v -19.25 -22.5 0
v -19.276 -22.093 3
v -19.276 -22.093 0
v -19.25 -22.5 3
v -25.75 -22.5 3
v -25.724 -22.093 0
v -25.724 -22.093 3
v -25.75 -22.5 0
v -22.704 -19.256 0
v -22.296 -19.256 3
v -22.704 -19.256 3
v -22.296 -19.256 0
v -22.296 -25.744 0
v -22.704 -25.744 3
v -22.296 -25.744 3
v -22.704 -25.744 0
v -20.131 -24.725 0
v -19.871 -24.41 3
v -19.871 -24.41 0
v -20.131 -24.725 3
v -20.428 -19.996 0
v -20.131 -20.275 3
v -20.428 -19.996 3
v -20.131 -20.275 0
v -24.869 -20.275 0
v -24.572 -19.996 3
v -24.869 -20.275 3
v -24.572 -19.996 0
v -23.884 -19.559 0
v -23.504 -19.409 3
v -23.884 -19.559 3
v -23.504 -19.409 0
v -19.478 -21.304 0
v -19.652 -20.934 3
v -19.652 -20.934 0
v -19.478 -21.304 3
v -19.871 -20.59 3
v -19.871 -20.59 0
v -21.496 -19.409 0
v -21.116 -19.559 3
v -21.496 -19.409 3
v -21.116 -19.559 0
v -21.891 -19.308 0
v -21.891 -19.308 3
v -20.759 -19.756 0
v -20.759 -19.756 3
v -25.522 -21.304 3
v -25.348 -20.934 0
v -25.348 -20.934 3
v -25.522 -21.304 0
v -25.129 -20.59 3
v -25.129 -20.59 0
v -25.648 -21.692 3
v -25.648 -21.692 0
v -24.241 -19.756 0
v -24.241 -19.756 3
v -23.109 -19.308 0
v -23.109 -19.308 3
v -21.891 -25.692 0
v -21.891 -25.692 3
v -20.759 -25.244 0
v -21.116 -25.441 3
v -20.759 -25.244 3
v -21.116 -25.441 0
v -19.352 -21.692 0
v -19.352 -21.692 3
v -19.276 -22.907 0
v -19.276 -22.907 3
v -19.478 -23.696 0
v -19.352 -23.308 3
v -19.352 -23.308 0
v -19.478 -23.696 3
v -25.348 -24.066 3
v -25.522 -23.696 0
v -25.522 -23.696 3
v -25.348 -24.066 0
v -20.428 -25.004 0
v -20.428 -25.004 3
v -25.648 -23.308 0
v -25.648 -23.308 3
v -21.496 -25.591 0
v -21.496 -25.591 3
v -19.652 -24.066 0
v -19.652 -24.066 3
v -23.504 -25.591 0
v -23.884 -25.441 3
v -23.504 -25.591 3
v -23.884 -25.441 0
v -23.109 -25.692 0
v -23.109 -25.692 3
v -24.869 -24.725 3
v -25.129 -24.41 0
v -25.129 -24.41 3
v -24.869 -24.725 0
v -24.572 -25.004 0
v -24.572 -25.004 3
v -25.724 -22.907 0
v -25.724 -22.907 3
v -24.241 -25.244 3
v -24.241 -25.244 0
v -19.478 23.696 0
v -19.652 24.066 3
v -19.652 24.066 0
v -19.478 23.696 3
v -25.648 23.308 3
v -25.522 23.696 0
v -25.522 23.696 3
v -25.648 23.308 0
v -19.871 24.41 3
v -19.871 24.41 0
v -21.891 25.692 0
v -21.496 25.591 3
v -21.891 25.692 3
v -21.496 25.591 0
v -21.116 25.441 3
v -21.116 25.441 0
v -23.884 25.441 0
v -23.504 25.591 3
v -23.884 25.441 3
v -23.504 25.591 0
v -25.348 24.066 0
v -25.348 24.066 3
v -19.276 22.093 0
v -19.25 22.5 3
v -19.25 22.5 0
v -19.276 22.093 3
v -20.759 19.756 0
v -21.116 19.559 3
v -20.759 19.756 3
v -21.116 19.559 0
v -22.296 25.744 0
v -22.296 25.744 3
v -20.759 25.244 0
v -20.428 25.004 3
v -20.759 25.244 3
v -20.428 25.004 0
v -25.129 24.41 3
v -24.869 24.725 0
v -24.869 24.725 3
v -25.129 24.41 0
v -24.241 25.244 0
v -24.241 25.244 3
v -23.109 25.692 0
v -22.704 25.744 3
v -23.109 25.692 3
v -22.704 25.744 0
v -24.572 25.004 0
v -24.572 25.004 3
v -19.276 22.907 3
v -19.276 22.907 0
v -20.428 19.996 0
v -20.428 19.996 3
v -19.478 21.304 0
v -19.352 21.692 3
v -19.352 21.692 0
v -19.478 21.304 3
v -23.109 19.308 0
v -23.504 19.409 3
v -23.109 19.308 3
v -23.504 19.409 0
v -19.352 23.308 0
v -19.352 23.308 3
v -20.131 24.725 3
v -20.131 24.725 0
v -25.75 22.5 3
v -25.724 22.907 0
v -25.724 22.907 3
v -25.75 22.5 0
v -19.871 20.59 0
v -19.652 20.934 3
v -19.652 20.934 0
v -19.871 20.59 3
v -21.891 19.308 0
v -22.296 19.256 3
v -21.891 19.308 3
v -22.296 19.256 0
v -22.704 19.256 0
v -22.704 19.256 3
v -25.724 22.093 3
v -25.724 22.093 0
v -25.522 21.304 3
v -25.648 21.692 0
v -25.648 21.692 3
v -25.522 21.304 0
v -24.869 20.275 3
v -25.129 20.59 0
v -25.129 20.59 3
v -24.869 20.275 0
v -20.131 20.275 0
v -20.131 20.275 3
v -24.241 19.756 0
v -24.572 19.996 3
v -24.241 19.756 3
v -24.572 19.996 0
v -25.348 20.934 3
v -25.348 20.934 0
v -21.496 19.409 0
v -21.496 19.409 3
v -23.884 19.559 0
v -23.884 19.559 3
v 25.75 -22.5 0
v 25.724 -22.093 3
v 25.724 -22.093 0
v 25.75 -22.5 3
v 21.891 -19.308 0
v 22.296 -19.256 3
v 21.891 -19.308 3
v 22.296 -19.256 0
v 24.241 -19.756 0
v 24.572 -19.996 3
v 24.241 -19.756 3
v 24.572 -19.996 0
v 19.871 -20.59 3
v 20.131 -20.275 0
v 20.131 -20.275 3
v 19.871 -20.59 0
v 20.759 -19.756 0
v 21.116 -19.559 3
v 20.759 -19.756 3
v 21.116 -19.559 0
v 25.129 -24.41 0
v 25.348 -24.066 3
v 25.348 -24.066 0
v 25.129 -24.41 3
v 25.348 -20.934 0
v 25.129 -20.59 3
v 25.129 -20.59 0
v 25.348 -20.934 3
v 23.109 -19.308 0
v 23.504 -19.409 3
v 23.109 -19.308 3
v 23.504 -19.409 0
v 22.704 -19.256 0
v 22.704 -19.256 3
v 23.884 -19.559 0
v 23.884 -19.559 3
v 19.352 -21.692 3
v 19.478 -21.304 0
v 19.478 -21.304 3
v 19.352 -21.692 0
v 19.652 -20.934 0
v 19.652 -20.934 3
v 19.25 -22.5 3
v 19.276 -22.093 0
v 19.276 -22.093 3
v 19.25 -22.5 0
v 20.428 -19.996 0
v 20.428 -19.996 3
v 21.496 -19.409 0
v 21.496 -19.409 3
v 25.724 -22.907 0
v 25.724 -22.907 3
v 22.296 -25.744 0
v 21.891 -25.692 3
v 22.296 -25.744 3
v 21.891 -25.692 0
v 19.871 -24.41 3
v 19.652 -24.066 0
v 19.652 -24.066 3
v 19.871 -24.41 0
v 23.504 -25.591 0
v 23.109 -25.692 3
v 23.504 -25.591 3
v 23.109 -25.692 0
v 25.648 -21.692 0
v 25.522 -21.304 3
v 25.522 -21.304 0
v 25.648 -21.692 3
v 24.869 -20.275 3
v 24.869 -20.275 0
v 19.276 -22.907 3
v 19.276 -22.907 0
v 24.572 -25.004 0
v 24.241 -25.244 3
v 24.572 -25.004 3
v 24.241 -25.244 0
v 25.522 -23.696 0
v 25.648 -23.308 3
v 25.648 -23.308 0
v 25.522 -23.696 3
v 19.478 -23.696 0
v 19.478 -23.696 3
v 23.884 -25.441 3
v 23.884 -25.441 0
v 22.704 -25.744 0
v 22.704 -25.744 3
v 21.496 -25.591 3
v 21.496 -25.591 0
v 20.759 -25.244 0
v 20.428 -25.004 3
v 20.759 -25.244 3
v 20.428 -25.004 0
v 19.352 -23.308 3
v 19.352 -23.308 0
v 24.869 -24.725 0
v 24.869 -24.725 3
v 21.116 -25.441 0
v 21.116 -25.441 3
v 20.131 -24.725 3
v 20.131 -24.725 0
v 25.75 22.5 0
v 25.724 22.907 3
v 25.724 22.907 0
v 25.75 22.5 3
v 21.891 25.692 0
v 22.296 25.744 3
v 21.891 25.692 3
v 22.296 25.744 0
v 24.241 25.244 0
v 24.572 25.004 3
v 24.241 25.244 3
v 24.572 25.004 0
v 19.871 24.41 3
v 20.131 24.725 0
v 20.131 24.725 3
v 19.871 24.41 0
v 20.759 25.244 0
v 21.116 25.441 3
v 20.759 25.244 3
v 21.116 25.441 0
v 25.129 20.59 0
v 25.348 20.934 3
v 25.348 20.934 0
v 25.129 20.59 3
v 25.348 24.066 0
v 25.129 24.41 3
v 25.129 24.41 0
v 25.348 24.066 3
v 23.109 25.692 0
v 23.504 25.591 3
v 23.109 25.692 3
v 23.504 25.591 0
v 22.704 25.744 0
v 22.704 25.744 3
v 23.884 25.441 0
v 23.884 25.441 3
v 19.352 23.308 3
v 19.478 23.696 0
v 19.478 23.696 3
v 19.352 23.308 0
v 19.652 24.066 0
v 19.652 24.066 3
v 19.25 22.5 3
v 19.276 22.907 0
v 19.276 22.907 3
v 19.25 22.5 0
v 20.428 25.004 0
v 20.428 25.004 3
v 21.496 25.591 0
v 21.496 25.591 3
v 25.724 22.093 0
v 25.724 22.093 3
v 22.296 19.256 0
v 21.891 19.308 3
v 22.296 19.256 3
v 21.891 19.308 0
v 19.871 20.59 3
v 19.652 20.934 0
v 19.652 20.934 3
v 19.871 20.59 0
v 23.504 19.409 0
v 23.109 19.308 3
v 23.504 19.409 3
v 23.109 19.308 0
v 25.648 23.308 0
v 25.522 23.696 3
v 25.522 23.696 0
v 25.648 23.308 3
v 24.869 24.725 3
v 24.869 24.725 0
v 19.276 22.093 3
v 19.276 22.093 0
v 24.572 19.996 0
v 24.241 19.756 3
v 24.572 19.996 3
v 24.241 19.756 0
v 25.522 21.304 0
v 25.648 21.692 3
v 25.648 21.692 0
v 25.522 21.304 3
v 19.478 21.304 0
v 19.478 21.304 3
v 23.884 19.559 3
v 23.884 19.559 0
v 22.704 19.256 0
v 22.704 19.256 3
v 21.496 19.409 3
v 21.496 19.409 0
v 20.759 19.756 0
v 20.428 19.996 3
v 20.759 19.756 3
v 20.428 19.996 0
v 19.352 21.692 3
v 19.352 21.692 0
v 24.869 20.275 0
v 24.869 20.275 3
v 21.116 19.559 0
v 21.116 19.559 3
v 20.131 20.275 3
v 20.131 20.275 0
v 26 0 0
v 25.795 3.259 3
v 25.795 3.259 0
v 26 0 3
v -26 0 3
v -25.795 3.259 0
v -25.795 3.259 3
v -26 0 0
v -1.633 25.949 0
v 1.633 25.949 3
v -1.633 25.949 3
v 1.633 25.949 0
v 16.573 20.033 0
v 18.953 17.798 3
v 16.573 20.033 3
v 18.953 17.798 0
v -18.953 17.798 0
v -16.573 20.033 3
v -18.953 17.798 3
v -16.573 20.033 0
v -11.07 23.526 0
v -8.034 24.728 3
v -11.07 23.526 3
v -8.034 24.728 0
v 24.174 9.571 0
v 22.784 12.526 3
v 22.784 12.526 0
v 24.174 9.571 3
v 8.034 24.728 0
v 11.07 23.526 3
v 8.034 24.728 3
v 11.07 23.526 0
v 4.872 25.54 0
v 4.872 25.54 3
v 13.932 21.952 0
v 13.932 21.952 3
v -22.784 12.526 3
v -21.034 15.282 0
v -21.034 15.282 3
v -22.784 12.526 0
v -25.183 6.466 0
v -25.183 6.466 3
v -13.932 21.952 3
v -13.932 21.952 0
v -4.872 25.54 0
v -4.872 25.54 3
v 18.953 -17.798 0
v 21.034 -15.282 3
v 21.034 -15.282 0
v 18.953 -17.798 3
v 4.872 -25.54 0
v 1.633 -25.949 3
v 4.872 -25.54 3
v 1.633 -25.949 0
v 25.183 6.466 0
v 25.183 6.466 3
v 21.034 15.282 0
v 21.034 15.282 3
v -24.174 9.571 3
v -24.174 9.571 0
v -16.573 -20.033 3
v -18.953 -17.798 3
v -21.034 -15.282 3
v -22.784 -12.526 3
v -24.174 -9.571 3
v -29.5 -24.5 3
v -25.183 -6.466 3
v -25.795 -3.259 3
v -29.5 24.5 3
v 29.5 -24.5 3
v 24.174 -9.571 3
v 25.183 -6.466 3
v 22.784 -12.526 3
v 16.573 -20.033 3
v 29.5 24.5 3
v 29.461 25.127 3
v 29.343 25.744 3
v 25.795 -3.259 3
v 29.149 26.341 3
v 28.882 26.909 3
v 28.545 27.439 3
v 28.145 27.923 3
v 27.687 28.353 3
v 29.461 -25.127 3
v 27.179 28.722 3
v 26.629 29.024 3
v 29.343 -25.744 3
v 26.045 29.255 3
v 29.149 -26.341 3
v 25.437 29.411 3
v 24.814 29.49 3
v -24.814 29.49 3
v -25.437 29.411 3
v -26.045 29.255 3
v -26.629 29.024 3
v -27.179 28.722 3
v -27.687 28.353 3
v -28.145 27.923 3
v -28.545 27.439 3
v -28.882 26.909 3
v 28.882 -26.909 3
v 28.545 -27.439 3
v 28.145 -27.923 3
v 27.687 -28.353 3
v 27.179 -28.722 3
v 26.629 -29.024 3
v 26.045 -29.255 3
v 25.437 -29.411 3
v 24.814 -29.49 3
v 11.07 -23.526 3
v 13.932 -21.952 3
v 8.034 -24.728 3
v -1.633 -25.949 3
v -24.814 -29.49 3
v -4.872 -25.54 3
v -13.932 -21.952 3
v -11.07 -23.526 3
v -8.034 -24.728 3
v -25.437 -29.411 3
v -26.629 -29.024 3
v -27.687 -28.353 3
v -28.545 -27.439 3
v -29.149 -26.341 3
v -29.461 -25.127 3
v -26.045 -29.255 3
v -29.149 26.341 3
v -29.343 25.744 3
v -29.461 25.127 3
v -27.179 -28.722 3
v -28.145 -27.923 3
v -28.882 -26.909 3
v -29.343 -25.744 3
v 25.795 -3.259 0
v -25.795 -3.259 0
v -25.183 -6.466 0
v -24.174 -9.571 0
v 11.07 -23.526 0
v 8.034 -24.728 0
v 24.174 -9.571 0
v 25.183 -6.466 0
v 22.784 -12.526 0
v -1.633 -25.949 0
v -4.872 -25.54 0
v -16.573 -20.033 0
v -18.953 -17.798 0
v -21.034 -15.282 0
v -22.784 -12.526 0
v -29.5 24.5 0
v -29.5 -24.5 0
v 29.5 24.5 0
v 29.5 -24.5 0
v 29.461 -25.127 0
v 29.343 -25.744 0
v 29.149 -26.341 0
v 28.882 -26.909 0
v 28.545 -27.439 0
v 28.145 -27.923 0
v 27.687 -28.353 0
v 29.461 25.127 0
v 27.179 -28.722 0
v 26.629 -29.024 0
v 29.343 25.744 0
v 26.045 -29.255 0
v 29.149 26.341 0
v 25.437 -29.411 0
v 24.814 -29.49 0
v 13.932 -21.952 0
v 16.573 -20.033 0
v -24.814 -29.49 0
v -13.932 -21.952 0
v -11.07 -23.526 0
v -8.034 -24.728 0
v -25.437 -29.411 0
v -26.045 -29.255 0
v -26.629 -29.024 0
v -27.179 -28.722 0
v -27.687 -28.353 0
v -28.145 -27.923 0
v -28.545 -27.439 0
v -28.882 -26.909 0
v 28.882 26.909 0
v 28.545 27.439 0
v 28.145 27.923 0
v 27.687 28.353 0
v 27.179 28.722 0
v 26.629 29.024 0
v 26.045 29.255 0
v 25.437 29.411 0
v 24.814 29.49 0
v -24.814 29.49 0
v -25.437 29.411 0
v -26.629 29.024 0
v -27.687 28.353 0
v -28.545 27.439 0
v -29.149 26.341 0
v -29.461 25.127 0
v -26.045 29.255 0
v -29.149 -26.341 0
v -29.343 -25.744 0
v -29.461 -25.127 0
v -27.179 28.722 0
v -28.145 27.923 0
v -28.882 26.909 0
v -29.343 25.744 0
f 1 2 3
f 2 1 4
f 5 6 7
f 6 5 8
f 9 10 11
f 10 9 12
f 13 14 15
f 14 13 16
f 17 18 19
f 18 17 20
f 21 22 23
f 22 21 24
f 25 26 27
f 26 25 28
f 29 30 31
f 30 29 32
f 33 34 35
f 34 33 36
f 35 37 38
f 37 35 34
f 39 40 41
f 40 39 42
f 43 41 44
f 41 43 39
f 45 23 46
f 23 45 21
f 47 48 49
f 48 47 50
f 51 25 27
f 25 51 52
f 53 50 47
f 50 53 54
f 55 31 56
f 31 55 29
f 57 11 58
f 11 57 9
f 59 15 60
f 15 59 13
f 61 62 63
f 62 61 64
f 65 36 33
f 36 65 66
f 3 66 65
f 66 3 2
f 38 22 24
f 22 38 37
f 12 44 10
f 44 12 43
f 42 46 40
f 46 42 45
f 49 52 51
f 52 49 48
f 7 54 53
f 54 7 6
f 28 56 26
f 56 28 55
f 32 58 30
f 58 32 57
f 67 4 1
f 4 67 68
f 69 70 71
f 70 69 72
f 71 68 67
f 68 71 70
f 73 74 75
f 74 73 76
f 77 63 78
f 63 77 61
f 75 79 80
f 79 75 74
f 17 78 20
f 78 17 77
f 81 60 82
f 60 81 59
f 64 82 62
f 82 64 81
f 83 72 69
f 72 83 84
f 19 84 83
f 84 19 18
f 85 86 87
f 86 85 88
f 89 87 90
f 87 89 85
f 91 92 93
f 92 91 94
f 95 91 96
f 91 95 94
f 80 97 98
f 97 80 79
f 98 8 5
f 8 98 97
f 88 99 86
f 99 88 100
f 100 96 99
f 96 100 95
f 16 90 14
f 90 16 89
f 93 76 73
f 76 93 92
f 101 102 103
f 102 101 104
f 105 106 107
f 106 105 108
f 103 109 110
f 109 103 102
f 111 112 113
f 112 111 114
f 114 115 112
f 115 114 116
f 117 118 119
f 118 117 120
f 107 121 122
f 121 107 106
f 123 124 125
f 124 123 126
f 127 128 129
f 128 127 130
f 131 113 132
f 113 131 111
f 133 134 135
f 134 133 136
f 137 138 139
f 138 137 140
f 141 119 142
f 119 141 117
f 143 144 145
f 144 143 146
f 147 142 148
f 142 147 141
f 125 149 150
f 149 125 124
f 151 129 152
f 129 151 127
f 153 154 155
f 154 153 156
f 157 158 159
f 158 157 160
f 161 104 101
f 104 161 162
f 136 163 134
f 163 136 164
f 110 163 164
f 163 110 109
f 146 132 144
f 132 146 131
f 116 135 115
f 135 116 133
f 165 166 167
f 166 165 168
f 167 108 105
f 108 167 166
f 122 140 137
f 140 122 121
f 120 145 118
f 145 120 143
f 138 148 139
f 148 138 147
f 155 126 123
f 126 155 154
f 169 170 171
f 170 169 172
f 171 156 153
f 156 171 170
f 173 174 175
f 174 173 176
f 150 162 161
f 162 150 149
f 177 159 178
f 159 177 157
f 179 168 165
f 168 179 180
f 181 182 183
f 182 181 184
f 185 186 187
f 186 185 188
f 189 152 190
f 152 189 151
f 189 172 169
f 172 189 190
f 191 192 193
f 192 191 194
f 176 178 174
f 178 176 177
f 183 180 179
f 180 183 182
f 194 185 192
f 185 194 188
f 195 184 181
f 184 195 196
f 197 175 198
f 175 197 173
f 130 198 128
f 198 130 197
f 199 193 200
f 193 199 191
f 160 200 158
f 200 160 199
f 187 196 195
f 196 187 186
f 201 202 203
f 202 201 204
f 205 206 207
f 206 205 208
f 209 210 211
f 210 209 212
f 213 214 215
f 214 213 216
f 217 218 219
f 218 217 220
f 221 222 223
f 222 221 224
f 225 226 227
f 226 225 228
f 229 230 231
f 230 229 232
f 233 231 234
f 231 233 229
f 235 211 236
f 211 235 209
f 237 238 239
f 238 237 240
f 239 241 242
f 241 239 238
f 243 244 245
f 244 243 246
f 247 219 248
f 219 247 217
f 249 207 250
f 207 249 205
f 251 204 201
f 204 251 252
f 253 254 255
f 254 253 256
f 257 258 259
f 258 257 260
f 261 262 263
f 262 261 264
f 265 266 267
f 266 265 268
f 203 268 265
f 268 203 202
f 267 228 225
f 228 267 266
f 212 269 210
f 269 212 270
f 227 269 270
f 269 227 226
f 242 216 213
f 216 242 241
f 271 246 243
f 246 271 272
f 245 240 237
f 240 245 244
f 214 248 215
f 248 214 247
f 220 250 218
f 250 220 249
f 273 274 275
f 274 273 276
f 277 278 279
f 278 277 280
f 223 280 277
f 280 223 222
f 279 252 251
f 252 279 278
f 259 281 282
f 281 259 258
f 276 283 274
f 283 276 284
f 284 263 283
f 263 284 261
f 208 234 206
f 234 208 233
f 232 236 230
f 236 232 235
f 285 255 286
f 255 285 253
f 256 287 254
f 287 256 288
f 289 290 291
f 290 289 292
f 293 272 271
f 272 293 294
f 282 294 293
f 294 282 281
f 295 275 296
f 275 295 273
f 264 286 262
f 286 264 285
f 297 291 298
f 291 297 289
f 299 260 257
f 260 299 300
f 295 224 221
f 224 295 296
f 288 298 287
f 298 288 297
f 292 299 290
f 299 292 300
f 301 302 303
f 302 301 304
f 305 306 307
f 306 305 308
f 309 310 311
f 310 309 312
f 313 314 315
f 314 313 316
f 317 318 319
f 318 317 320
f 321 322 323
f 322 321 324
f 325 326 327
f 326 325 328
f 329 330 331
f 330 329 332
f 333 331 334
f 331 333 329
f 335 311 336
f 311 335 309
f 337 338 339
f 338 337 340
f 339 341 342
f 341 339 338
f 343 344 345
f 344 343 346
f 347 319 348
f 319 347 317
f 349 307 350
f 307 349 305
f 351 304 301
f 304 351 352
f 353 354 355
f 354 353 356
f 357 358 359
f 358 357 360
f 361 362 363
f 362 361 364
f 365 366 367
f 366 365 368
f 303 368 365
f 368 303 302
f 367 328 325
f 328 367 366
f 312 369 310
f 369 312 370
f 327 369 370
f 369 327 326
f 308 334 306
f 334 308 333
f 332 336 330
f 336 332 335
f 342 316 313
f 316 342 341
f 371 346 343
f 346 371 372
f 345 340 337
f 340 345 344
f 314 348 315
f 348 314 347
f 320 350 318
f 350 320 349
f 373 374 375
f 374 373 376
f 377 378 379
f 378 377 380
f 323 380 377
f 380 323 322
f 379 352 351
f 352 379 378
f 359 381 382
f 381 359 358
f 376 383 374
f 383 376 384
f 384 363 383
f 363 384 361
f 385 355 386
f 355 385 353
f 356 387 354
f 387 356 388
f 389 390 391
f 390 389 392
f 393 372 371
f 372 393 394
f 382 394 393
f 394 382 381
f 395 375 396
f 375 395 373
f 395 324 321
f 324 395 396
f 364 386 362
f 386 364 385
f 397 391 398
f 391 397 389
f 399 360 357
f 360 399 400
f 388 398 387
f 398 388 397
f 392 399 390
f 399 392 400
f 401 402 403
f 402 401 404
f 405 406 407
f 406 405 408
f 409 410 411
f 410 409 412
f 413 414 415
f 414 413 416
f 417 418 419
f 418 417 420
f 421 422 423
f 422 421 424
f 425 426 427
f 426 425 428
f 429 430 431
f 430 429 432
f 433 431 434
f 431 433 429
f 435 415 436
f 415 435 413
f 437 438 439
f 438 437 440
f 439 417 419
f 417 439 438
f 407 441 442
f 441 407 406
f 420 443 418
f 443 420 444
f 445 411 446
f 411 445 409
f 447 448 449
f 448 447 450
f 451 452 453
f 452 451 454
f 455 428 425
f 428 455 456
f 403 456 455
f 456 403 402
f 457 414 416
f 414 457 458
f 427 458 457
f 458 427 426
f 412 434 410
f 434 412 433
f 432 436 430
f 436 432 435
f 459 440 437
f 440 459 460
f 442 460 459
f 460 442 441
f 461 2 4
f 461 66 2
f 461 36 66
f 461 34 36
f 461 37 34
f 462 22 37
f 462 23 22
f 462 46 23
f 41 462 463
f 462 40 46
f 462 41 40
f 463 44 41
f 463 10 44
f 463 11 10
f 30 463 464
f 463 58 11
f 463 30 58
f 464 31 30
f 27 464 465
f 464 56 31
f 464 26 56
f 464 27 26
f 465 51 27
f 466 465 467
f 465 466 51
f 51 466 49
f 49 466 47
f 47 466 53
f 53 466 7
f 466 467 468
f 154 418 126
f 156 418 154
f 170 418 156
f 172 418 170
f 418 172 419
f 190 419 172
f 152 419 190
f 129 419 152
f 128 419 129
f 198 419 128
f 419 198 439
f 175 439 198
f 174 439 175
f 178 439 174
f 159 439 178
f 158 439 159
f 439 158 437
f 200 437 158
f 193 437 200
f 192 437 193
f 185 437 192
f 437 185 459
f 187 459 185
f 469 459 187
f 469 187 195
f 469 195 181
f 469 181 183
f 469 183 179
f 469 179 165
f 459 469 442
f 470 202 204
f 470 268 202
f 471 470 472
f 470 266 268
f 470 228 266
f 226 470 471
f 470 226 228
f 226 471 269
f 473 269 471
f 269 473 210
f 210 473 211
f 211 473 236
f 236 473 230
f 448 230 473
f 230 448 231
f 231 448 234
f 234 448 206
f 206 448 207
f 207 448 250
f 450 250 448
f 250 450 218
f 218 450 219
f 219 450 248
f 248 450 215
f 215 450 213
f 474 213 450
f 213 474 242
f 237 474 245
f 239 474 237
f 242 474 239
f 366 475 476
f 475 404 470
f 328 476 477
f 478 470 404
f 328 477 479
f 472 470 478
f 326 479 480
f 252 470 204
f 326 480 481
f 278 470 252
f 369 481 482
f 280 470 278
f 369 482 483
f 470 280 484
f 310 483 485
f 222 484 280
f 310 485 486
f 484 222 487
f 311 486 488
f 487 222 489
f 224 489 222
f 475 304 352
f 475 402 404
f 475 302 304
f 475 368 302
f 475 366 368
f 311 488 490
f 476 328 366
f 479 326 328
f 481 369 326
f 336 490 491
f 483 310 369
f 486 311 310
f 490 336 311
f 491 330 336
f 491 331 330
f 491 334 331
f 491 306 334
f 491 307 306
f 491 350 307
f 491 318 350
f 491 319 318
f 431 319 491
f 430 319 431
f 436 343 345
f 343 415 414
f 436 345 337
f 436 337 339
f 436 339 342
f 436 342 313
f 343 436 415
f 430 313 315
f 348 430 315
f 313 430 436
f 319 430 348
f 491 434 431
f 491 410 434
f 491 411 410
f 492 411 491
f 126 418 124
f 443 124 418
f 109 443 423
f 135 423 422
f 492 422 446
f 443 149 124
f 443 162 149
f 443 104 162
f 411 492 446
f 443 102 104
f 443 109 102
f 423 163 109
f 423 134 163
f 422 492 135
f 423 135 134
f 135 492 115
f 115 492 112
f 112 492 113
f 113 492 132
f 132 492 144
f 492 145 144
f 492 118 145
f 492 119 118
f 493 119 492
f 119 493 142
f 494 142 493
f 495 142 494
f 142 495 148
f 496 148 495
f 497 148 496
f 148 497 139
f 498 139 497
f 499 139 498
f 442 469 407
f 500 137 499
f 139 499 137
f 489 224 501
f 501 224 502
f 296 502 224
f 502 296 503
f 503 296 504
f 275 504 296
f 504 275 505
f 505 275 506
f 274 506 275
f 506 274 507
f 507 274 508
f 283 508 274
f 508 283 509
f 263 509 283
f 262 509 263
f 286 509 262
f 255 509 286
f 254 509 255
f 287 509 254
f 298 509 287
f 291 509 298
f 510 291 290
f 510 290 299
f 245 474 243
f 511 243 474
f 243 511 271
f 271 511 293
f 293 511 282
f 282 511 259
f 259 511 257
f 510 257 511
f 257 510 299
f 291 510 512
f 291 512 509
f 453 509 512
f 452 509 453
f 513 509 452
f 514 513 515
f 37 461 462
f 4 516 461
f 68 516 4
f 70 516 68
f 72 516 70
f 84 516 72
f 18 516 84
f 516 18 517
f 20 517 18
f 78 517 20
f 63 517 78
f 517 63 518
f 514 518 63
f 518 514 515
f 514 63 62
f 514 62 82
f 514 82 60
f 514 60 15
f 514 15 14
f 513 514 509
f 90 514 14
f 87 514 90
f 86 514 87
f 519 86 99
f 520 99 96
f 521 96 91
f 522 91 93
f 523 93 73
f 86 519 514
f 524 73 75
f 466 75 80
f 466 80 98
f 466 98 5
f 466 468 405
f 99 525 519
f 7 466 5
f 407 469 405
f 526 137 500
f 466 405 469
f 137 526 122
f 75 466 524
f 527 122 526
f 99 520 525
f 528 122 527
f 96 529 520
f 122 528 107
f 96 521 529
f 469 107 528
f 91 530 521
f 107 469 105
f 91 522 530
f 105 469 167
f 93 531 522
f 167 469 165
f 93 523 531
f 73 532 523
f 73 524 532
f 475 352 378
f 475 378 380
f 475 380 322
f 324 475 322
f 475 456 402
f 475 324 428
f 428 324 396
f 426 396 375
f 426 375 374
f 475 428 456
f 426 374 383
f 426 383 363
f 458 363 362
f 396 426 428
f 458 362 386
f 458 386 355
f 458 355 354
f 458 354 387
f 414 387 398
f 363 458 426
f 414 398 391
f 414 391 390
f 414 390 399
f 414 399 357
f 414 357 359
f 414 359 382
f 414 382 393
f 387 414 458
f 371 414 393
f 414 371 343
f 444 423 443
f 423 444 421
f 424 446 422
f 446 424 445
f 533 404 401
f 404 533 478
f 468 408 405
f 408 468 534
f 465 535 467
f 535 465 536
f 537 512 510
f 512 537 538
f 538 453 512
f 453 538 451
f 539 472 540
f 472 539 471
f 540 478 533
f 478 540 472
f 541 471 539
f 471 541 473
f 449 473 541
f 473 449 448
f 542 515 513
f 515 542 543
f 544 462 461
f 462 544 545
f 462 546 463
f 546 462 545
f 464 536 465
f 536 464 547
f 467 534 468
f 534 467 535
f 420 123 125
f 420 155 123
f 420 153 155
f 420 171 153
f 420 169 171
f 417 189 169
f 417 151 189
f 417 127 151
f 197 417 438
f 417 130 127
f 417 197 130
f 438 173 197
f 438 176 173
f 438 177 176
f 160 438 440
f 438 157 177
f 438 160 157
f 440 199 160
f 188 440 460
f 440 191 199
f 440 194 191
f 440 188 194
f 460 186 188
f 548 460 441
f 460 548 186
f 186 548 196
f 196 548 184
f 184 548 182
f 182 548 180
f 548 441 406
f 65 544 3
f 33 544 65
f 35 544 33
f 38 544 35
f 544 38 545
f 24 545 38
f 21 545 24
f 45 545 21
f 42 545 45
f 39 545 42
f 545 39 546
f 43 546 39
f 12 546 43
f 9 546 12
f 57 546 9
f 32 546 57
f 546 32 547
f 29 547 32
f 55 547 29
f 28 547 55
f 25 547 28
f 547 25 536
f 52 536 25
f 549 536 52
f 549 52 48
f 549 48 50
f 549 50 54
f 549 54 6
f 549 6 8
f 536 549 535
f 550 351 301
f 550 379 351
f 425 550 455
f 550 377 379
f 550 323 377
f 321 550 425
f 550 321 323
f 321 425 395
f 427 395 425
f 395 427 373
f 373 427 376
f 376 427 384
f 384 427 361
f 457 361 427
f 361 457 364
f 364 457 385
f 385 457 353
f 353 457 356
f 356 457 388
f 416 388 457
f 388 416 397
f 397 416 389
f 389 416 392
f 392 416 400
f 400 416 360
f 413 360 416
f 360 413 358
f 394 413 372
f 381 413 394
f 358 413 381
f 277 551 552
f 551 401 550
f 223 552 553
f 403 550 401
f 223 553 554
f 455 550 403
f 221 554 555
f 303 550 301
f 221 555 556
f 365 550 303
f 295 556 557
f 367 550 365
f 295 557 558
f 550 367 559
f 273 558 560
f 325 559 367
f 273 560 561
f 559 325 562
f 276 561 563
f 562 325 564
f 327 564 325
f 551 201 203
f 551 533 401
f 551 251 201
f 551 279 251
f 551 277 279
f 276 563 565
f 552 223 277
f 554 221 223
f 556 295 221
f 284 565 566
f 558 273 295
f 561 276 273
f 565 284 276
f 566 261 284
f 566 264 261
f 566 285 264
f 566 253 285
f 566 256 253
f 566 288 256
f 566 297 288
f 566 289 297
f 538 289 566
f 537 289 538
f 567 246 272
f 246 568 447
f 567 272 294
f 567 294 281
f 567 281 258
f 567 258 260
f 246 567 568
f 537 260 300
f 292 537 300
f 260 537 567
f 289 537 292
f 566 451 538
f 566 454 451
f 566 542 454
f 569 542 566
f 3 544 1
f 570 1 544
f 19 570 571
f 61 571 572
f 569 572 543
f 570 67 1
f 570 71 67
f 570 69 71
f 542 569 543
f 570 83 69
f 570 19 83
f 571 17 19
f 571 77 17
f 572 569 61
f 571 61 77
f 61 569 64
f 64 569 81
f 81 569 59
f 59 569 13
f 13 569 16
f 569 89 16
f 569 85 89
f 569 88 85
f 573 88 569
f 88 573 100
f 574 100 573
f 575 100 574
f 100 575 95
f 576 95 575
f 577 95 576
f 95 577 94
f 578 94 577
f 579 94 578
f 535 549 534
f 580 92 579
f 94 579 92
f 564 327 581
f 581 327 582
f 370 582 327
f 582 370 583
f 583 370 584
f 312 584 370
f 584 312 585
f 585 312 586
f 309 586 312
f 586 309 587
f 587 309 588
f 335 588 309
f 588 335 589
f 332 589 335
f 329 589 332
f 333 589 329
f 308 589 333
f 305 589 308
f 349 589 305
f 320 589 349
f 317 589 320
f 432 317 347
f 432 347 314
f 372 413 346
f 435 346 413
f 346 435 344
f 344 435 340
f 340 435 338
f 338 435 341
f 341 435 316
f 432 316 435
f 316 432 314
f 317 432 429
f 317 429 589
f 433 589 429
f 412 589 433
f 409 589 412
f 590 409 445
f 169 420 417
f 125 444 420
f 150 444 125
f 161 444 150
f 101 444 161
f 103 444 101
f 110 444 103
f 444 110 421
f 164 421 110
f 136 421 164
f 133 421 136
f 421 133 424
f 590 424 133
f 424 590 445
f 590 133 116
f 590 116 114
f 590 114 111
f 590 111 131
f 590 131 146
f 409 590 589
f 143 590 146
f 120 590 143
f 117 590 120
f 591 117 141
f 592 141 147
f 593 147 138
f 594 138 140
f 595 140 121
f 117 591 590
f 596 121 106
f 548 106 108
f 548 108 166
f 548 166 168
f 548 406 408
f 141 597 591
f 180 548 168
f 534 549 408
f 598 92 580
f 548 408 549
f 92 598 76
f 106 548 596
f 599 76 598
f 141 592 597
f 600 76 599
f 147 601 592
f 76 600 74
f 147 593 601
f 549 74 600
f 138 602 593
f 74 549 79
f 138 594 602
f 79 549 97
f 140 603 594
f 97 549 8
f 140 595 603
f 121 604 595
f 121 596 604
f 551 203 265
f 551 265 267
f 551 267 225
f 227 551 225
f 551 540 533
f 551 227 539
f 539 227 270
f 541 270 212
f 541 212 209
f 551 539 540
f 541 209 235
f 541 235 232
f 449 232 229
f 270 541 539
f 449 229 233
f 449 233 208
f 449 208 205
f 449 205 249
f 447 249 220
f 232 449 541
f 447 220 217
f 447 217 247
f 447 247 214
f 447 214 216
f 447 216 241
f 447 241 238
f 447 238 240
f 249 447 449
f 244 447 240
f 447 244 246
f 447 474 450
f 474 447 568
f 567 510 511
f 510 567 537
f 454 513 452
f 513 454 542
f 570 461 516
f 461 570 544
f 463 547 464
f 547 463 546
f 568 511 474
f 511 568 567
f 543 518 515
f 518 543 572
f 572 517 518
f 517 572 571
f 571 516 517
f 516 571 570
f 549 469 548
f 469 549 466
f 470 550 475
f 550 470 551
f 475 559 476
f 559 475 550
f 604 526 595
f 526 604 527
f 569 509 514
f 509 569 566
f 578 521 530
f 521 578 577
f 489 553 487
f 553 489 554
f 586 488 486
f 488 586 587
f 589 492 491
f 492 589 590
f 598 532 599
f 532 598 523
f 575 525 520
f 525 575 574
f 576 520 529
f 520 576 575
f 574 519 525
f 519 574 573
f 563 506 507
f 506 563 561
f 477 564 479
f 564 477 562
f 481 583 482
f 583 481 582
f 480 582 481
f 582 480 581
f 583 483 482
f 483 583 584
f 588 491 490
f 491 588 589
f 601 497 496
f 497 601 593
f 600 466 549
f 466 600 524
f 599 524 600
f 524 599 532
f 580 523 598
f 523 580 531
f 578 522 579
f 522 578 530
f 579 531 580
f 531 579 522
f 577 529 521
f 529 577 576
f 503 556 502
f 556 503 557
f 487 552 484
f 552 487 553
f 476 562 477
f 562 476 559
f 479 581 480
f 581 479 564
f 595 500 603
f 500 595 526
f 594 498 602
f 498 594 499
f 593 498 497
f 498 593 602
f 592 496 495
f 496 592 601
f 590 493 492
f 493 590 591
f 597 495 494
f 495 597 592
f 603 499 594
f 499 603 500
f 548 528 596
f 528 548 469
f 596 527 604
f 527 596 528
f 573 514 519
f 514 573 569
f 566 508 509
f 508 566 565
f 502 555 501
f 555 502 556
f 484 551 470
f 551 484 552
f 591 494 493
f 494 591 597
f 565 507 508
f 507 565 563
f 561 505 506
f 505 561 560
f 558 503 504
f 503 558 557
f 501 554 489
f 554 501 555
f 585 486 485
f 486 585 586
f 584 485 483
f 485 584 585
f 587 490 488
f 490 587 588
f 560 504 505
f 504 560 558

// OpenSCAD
$fn = 50;


difference() {
	union() {
		hull() {
			translate(v = [-24.5000000000, 24.5000000000, 0]) {
				cylinder(h = 3, r = 5);
			}
			translate(v = [24.5000000000, 24.5000000000, 0]) {
				cylinder(h = 3, r = 5);
			}
			translate(v = [-24.5000000000, -24.5000000000, 0]) {
				cylinder(h = 3, r = 5);
			}
			translate(v = [24.5000000000, -24.5000000000, 0]) {
				cylinder(h = 3, r = 5);
			}
		}
	}
	union() {
		#translate(v = [-22.5000000000, -22.5000000000, -100.0000000000]) {
			cylinder(h = 200, r = 3.2500000000);
		}
		#translate(v = [-22.5000000000, 22.5000000000, -100.0000000000]) {
			cylinder(h = 200, r = 3.2500000000);
		}
		#translate(v = [22.5000000000, -22.5000000000, -100.0000000000]) {
			cylinder(h = 200, r = 3.2500000000);
		}
		#translate(v = [22.5000000000, 22.5000000000, -100.0000000000]) {
			cylinder(h = 200, r = 3.2500000000);
		}
		#cylinder(h = 3, r = 26.0000000000);
	}
}
